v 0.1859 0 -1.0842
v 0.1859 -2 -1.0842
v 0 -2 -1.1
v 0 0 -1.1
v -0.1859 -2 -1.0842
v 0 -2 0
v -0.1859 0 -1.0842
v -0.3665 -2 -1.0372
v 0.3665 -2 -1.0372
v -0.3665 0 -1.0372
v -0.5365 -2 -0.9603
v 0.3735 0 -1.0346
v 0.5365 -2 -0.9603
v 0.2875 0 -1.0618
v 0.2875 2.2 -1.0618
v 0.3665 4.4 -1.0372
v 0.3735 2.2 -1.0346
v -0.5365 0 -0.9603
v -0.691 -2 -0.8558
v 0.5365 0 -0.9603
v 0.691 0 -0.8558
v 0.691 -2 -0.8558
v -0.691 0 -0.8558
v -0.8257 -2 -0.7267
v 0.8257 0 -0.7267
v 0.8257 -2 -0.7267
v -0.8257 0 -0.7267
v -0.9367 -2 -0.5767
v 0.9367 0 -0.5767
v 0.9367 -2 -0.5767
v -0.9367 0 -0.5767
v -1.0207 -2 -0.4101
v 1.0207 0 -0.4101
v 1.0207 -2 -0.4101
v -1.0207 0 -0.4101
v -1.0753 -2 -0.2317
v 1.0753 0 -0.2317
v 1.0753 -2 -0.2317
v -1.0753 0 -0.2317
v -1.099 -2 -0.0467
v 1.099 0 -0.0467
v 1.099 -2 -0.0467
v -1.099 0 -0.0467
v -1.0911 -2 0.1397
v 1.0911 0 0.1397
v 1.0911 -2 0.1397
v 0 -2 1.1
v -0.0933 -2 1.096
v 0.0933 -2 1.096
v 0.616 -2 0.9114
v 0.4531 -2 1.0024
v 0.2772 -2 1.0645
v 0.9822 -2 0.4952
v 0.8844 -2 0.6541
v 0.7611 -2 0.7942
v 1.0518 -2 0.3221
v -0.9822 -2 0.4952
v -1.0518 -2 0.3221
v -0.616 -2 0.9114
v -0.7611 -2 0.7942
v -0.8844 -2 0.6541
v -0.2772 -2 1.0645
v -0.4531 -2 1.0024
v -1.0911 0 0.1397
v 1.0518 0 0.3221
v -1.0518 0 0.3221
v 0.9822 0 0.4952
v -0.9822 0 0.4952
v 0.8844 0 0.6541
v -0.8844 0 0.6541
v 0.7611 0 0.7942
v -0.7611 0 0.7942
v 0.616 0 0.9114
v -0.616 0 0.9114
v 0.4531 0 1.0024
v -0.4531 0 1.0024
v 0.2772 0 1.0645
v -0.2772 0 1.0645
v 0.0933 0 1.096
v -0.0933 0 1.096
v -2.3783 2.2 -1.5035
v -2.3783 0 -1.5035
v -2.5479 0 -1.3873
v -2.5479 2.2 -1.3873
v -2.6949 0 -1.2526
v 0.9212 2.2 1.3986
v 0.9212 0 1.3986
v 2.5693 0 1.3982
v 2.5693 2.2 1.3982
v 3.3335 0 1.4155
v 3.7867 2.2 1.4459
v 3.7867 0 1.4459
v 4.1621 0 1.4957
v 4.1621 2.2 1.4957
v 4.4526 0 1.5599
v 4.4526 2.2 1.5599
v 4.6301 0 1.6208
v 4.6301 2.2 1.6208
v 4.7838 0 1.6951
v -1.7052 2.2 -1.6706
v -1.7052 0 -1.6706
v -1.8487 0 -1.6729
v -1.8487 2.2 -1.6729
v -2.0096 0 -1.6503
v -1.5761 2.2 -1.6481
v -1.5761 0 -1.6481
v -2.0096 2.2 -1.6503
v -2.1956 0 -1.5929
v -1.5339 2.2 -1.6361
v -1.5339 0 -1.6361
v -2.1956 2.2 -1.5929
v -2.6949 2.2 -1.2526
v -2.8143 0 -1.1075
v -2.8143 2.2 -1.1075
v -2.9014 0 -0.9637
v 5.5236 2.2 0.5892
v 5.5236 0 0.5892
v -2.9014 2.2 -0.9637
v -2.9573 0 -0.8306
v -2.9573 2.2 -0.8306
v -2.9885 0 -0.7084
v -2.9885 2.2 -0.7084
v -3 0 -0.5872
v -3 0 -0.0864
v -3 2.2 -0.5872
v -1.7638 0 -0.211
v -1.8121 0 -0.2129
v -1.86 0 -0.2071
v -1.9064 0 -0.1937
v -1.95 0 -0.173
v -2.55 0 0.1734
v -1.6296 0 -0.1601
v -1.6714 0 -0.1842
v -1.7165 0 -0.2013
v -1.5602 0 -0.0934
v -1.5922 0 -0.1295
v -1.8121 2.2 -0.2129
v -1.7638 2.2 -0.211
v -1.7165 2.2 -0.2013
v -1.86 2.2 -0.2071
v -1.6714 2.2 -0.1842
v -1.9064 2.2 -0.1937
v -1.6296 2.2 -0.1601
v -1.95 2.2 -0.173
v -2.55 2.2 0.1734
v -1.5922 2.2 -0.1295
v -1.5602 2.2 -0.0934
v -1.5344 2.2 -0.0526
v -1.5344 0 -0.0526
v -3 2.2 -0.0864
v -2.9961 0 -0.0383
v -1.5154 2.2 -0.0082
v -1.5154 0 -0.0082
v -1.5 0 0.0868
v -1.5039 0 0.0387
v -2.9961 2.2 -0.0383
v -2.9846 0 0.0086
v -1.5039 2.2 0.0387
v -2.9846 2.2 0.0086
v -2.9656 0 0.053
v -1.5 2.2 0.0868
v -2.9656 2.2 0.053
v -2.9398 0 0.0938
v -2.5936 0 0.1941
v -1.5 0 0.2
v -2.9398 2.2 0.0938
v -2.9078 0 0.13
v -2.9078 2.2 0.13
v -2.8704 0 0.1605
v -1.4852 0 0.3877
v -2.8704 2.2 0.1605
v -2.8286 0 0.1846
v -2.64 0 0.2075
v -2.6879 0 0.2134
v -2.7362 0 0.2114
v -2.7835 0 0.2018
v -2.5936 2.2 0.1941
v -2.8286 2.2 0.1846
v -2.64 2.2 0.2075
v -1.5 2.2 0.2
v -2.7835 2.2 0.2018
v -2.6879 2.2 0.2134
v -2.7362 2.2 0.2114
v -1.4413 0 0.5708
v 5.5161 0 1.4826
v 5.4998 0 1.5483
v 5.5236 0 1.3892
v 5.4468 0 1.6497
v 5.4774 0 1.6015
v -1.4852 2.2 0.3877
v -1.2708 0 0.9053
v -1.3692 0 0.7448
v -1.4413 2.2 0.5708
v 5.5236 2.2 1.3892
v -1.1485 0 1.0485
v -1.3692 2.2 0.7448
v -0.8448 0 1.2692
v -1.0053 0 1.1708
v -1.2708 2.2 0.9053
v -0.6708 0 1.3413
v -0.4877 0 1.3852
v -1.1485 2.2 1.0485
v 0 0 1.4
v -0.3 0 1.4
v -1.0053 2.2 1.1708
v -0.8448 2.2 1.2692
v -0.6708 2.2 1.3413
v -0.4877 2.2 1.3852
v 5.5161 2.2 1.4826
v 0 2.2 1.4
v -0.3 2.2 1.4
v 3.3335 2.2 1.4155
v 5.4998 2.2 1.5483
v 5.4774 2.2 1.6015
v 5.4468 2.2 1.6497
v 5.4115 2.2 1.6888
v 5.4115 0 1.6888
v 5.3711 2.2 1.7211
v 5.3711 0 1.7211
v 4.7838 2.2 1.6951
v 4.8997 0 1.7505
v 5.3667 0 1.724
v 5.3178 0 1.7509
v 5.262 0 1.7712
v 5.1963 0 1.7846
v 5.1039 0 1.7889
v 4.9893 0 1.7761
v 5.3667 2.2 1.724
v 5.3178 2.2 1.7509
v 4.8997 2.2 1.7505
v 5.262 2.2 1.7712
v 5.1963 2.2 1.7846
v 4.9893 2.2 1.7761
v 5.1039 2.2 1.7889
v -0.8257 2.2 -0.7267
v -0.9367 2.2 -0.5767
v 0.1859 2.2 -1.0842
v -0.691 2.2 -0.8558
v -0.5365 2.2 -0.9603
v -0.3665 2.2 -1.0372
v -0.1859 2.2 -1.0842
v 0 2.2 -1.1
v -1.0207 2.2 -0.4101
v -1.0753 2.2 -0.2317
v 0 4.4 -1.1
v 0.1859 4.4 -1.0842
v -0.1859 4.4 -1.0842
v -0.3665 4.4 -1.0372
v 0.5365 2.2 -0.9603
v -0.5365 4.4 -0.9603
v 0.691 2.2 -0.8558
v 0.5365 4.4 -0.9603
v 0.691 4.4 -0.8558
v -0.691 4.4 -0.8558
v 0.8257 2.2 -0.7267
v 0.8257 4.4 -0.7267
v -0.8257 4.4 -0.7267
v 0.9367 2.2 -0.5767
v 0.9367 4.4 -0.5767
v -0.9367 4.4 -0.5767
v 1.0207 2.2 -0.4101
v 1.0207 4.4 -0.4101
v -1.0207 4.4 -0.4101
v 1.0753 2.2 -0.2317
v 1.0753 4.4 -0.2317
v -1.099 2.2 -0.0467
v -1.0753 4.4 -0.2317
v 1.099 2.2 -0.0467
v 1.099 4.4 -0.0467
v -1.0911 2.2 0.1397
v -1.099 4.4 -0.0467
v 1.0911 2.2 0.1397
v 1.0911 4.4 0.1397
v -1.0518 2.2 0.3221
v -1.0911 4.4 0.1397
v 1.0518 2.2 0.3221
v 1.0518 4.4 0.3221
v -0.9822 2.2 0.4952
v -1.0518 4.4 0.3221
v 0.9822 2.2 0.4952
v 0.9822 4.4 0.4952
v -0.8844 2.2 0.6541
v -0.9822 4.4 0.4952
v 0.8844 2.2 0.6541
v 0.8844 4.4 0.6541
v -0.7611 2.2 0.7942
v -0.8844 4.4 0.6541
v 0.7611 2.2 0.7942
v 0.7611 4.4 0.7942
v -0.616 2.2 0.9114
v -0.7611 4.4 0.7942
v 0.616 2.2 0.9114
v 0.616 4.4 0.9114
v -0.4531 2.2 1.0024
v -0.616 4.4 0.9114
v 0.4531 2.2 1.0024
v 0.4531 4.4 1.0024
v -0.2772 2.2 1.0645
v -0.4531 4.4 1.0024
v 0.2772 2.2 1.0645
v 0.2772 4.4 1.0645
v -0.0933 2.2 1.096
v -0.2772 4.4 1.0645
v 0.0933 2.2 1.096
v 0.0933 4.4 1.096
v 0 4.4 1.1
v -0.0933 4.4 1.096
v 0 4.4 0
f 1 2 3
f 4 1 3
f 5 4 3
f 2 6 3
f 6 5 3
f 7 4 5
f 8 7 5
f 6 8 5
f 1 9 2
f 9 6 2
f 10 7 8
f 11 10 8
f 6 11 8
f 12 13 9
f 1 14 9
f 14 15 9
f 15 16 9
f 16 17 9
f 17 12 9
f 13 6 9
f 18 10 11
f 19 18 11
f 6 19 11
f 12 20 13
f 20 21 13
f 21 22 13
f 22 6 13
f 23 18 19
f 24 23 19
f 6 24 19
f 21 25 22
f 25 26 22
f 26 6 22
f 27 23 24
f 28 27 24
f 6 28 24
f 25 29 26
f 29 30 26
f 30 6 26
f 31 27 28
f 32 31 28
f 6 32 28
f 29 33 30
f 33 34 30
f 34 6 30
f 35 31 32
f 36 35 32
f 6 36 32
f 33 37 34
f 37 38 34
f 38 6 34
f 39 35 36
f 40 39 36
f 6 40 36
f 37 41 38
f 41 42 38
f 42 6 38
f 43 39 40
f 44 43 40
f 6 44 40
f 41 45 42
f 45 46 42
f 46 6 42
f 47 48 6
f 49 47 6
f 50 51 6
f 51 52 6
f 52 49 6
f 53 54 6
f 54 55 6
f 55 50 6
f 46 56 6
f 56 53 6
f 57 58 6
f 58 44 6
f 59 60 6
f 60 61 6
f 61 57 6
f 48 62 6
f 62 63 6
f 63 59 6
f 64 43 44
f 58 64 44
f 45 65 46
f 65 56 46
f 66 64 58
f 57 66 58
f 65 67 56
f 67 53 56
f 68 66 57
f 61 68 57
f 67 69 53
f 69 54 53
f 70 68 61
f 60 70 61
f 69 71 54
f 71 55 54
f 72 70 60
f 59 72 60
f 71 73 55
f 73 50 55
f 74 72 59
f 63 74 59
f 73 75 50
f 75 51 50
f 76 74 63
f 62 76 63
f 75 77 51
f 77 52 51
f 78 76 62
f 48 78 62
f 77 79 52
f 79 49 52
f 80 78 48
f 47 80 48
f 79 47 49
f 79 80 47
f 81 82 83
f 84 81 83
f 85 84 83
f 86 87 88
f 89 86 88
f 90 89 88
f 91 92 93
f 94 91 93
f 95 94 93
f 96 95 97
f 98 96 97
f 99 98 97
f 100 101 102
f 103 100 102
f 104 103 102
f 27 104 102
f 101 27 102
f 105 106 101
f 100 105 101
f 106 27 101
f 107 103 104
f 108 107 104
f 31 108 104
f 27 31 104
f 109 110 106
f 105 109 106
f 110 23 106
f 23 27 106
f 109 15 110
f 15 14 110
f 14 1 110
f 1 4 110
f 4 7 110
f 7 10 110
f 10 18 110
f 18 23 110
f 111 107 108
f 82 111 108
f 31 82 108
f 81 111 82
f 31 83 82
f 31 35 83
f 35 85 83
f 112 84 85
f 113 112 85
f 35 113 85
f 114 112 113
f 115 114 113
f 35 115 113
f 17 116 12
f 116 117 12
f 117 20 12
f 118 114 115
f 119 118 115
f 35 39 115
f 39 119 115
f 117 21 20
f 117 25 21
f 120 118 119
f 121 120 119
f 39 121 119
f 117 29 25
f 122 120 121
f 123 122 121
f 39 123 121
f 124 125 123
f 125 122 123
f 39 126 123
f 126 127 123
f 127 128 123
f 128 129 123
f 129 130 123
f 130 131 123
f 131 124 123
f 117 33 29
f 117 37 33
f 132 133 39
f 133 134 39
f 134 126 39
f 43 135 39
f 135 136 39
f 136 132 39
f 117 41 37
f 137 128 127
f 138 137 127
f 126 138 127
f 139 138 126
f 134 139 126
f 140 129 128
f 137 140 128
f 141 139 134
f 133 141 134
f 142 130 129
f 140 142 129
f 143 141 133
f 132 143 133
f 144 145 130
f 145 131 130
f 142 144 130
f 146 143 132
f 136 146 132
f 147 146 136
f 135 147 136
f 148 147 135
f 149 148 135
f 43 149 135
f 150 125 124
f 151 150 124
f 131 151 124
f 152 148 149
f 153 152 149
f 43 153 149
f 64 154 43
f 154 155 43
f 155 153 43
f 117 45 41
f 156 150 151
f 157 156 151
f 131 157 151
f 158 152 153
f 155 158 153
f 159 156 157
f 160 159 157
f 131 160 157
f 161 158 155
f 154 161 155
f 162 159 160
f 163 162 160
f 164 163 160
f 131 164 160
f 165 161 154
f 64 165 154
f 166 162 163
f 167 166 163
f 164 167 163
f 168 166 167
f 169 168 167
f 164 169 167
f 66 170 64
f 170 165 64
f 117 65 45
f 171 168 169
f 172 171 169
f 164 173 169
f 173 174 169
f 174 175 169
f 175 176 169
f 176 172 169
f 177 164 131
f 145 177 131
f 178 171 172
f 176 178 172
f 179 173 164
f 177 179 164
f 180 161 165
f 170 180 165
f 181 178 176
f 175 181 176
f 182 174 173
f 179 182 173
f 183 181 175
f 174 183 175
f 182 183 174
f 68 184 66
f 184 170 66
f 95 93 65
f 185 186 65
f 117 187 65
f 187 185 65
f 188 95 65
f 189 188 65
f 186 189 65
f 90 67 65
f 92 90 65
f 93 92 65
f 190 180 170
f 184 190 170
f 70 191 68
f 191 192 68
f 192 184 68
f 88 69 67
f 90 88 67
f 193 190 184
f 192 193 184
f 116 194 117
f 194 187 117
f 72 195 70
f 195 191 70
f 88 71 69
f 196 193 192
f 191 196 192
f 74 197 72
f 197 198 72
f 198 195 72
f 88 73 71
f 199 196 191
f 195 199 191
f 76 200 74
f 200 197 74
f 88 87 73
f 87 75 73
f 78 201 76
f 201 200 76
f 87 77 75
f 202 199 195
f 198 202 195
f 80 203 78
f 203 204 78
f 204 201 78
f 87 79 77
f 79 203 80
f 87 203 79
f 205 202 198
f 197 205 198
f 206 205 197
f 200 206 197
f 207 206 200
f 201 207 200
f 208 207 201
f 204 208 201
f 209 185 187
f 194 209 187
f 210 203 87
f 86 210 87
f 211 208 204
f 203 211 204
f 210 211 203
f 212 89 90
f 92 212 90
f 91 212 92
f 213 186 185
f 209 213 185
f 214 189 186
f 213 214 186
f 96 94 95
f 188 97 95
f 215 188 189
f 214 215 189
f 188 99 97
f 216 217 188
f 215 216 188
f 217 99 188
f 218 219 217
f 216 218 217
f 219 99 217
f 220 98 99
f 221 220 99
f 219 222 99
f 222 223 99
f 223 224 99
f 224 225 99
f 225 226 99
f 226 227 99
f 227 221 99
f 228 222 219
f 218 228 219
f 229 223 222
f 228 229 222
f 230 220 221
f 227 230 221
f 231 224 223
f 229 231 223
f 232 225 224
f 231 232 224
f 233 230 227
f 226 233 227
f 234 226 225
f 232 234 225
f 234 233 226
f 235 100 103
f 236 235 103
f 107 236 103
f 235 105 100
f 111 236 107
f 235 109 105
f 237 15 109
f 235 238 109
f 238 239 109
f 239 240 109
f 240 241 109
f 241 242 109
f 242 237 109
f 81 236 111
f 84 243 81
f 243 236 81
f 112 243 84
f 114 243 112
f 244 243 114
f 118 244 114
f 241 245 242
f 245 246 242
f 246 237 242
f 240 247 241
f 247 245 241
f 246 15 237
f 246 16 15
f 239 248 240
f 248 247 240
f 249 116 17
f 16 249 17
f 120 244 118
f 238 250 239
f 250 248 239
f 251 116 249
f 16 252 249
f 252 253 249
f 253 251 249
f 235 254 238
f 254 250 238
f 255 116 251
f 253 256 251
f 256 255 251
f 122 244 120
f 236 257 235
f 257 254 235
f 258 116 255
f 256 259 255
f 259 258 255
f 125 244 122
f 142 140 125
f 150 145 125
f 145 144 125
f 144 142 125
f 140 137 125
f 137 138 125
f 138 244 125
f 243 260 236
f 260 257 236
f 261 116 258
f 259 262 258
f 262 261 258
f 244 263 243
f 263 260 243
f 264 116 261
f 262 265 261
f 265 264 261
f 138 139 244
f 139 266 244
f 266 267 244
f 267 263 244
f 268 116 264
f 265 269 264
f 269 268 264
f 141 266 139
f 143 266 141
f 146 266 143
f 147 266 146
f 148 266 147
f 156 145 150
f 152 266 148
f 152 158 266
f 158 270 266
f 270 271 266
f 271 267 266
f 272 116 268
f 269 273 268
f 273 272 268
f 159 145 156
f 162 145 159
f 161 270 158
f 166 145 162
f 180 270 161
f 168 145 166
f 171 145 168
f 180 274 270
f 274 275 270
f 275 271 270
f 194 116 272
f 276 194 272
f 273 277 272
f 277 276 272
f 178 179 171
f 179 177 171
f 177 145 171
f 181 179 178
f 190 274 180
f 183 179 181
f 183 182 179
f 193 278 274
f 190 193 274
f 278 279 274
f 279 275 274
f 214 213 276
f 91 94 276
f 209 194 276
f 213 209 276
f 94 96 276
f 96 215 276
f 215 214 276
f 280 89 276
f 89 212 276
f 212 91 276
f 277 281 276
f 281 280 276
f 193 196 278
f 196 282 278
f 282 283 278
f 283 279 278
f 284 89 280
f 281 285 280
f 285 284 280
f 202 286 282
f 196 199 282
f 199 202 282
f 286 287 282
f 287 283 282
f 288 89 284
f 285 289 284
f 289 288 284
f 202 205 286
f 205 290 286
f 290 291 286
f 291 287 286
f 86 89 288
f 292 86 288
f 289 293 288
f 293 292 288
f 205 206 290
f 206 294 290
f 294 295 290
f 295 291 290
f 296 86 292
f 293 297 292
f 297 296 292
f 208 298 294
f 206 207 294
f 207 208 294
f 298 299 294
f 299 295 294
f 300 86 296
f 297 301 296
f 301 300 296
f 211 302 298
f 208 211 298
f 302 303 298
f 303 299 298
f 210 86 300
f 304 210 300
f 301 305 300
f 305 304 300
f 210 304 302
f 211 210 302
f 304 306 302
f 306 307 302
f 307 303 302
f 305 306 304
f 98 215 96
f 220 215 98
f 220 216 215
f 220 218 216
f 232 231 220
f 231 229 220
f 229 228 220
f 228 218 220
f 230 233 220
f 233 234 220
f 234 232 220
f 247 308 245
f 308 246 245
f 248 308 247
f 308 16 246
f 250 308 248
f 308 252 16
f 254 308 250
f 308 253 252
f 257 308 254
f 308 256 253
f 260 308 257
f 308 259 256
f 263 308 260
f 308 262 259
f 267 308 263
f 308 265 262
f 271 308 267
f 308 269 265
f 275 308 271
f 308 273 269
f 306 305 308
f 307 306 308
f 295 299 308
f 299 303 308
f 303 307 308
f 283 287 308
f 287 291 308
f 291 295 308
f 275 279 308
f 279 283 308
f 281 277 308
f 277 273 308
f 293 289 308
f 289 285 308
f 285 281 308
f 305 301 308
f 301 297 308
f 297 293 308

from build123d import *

# Parameters (mm, degrees)
BOSS_EXTRUDE1_DEPTH      = 2.2
BOSS_EXTRUDE2_DEPTH      = 4.4
BOSS_EXTRUDE2_DEPTH_BACK = 2
SKETCH1_3_R              = 1.1


with BuildPart() as part:
    # Sketch1 → Boss-Extrude1 (new body)
    with BuildSketch(Plane(origin=(0, 0, 0), x_dir=(1, 0, 0), z_dir=(0, 1, 0))):
        with BuildLine():
            Line((5.523587939, -1.389168628), (5.523587939, -0.589168628))
            Line((5.523587939, -0.589168628), (0.373516405, 1.03464269))
            ThreePointArc((0.373516405, 1.03464269), (0.330776379, 1.049088646), (0.28747994, 1.061769883))
            Line((0.28747994, 1.061769883), (-1.533917496, 1.636054289))
            add(Edge.make_bspline(
                [(-3, 0.587196294), (-2.993093164, 1.205023593), (-2.177968287, 1.839122723), (-1.533917496, 1.636054289)],
                knots=[0, 0, 0, 0, 1, 1, 1, 1], degree=3))
            Line((-3, 0.587196294), (-3, 0.08639369))
            ThreePointArc((-3, 0.08639369), (-2.85, -0.173413931), (-2.55, -0.173413931))
            Line((-2.55, -0.173413931), (-1.95, 0.17299623))
            ThreePointArc((-1.95, 0.17299623), (-1.65, 0.17299623), (-1.5, -0.086811391))
            Line((-1.5, -0.086811391), (-1.5, -0.2))
            ThreePointArc((-1.5, -0.2), (-1.148528137, -1.048528137), (-0.3, -1.4))
            Line((-0.3, -1.4), (0, -1.4))
            add(Edge.make_bspline(
                [(5.523587939, -1.389168628), (5.523587939, -1.655644582), (5.31087633, -1.80182616), (4.791580785, -1.773367747), (4.77273176, -1.59674075), (3.415135688, -1.368008507), (2.1, -1.4), (0, -1.4)],
                knots=[0, 0, 0, 0, 0.200930821, 0.262112326, 0.572959193, 0.650633546, 1, 1, 1, 1], degree=3))
        make_face()
    extrude(amount=BOSS_EXTRUDE1_DEPTH)

    # Sketch1<3> → Boss-Extrude2 (add, two sides: drawn at the far end of the back side and taken through both)
    with BuildSketch(Plane(origin=(0, 0, 0), x_dir=(1, 0, 0), z_dir=(0, 1, 0)).offset(-BOSS_EXTRUDE2_DEPTH_BACK)):
        with Locations(Location((0, 0, 0), (0, 0, 270))):
            Circle(SKETCH1_3_R)
    extrude(amount=BOSS_EXTRUDE2_DEPTH + BOSS_EXTRUDE2_DEPTH_BACK)


solid = part.part
